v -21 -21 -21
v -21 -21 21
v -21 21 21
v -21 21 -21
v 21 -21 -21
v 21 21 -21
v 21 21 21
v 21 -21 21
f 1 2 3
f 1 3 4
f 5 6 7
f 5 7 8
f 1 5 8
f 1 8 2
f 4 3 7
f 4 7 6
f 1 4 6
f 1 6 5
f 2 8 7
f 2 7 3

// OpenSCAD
// Millimeters. Same vertices as STL and simulation.
polyhedron(points=[[-21.0, -21.0, -21.0], [-21.0, -21.0, 21.0], [-21.0, 21.0, -21.0], [-21.0, 21.0, 21.0], [21.0, -21.0, -21.0], [21.0, -21.0, 21.0], [21.0, 21.0, -21.0], [21.0, 21.0, 21.0]], faces=[[3, 1, 0], [2, 3, 0], [7, 6, 4], [5, 7, 4], [5, 4, 0], [1, 5, 0], [7, 3, 2], [6, 7, 2], [6, 2, 0], [4, 6, 0], [7, 5, 1], [3, 7, 1]], convexity=10);
